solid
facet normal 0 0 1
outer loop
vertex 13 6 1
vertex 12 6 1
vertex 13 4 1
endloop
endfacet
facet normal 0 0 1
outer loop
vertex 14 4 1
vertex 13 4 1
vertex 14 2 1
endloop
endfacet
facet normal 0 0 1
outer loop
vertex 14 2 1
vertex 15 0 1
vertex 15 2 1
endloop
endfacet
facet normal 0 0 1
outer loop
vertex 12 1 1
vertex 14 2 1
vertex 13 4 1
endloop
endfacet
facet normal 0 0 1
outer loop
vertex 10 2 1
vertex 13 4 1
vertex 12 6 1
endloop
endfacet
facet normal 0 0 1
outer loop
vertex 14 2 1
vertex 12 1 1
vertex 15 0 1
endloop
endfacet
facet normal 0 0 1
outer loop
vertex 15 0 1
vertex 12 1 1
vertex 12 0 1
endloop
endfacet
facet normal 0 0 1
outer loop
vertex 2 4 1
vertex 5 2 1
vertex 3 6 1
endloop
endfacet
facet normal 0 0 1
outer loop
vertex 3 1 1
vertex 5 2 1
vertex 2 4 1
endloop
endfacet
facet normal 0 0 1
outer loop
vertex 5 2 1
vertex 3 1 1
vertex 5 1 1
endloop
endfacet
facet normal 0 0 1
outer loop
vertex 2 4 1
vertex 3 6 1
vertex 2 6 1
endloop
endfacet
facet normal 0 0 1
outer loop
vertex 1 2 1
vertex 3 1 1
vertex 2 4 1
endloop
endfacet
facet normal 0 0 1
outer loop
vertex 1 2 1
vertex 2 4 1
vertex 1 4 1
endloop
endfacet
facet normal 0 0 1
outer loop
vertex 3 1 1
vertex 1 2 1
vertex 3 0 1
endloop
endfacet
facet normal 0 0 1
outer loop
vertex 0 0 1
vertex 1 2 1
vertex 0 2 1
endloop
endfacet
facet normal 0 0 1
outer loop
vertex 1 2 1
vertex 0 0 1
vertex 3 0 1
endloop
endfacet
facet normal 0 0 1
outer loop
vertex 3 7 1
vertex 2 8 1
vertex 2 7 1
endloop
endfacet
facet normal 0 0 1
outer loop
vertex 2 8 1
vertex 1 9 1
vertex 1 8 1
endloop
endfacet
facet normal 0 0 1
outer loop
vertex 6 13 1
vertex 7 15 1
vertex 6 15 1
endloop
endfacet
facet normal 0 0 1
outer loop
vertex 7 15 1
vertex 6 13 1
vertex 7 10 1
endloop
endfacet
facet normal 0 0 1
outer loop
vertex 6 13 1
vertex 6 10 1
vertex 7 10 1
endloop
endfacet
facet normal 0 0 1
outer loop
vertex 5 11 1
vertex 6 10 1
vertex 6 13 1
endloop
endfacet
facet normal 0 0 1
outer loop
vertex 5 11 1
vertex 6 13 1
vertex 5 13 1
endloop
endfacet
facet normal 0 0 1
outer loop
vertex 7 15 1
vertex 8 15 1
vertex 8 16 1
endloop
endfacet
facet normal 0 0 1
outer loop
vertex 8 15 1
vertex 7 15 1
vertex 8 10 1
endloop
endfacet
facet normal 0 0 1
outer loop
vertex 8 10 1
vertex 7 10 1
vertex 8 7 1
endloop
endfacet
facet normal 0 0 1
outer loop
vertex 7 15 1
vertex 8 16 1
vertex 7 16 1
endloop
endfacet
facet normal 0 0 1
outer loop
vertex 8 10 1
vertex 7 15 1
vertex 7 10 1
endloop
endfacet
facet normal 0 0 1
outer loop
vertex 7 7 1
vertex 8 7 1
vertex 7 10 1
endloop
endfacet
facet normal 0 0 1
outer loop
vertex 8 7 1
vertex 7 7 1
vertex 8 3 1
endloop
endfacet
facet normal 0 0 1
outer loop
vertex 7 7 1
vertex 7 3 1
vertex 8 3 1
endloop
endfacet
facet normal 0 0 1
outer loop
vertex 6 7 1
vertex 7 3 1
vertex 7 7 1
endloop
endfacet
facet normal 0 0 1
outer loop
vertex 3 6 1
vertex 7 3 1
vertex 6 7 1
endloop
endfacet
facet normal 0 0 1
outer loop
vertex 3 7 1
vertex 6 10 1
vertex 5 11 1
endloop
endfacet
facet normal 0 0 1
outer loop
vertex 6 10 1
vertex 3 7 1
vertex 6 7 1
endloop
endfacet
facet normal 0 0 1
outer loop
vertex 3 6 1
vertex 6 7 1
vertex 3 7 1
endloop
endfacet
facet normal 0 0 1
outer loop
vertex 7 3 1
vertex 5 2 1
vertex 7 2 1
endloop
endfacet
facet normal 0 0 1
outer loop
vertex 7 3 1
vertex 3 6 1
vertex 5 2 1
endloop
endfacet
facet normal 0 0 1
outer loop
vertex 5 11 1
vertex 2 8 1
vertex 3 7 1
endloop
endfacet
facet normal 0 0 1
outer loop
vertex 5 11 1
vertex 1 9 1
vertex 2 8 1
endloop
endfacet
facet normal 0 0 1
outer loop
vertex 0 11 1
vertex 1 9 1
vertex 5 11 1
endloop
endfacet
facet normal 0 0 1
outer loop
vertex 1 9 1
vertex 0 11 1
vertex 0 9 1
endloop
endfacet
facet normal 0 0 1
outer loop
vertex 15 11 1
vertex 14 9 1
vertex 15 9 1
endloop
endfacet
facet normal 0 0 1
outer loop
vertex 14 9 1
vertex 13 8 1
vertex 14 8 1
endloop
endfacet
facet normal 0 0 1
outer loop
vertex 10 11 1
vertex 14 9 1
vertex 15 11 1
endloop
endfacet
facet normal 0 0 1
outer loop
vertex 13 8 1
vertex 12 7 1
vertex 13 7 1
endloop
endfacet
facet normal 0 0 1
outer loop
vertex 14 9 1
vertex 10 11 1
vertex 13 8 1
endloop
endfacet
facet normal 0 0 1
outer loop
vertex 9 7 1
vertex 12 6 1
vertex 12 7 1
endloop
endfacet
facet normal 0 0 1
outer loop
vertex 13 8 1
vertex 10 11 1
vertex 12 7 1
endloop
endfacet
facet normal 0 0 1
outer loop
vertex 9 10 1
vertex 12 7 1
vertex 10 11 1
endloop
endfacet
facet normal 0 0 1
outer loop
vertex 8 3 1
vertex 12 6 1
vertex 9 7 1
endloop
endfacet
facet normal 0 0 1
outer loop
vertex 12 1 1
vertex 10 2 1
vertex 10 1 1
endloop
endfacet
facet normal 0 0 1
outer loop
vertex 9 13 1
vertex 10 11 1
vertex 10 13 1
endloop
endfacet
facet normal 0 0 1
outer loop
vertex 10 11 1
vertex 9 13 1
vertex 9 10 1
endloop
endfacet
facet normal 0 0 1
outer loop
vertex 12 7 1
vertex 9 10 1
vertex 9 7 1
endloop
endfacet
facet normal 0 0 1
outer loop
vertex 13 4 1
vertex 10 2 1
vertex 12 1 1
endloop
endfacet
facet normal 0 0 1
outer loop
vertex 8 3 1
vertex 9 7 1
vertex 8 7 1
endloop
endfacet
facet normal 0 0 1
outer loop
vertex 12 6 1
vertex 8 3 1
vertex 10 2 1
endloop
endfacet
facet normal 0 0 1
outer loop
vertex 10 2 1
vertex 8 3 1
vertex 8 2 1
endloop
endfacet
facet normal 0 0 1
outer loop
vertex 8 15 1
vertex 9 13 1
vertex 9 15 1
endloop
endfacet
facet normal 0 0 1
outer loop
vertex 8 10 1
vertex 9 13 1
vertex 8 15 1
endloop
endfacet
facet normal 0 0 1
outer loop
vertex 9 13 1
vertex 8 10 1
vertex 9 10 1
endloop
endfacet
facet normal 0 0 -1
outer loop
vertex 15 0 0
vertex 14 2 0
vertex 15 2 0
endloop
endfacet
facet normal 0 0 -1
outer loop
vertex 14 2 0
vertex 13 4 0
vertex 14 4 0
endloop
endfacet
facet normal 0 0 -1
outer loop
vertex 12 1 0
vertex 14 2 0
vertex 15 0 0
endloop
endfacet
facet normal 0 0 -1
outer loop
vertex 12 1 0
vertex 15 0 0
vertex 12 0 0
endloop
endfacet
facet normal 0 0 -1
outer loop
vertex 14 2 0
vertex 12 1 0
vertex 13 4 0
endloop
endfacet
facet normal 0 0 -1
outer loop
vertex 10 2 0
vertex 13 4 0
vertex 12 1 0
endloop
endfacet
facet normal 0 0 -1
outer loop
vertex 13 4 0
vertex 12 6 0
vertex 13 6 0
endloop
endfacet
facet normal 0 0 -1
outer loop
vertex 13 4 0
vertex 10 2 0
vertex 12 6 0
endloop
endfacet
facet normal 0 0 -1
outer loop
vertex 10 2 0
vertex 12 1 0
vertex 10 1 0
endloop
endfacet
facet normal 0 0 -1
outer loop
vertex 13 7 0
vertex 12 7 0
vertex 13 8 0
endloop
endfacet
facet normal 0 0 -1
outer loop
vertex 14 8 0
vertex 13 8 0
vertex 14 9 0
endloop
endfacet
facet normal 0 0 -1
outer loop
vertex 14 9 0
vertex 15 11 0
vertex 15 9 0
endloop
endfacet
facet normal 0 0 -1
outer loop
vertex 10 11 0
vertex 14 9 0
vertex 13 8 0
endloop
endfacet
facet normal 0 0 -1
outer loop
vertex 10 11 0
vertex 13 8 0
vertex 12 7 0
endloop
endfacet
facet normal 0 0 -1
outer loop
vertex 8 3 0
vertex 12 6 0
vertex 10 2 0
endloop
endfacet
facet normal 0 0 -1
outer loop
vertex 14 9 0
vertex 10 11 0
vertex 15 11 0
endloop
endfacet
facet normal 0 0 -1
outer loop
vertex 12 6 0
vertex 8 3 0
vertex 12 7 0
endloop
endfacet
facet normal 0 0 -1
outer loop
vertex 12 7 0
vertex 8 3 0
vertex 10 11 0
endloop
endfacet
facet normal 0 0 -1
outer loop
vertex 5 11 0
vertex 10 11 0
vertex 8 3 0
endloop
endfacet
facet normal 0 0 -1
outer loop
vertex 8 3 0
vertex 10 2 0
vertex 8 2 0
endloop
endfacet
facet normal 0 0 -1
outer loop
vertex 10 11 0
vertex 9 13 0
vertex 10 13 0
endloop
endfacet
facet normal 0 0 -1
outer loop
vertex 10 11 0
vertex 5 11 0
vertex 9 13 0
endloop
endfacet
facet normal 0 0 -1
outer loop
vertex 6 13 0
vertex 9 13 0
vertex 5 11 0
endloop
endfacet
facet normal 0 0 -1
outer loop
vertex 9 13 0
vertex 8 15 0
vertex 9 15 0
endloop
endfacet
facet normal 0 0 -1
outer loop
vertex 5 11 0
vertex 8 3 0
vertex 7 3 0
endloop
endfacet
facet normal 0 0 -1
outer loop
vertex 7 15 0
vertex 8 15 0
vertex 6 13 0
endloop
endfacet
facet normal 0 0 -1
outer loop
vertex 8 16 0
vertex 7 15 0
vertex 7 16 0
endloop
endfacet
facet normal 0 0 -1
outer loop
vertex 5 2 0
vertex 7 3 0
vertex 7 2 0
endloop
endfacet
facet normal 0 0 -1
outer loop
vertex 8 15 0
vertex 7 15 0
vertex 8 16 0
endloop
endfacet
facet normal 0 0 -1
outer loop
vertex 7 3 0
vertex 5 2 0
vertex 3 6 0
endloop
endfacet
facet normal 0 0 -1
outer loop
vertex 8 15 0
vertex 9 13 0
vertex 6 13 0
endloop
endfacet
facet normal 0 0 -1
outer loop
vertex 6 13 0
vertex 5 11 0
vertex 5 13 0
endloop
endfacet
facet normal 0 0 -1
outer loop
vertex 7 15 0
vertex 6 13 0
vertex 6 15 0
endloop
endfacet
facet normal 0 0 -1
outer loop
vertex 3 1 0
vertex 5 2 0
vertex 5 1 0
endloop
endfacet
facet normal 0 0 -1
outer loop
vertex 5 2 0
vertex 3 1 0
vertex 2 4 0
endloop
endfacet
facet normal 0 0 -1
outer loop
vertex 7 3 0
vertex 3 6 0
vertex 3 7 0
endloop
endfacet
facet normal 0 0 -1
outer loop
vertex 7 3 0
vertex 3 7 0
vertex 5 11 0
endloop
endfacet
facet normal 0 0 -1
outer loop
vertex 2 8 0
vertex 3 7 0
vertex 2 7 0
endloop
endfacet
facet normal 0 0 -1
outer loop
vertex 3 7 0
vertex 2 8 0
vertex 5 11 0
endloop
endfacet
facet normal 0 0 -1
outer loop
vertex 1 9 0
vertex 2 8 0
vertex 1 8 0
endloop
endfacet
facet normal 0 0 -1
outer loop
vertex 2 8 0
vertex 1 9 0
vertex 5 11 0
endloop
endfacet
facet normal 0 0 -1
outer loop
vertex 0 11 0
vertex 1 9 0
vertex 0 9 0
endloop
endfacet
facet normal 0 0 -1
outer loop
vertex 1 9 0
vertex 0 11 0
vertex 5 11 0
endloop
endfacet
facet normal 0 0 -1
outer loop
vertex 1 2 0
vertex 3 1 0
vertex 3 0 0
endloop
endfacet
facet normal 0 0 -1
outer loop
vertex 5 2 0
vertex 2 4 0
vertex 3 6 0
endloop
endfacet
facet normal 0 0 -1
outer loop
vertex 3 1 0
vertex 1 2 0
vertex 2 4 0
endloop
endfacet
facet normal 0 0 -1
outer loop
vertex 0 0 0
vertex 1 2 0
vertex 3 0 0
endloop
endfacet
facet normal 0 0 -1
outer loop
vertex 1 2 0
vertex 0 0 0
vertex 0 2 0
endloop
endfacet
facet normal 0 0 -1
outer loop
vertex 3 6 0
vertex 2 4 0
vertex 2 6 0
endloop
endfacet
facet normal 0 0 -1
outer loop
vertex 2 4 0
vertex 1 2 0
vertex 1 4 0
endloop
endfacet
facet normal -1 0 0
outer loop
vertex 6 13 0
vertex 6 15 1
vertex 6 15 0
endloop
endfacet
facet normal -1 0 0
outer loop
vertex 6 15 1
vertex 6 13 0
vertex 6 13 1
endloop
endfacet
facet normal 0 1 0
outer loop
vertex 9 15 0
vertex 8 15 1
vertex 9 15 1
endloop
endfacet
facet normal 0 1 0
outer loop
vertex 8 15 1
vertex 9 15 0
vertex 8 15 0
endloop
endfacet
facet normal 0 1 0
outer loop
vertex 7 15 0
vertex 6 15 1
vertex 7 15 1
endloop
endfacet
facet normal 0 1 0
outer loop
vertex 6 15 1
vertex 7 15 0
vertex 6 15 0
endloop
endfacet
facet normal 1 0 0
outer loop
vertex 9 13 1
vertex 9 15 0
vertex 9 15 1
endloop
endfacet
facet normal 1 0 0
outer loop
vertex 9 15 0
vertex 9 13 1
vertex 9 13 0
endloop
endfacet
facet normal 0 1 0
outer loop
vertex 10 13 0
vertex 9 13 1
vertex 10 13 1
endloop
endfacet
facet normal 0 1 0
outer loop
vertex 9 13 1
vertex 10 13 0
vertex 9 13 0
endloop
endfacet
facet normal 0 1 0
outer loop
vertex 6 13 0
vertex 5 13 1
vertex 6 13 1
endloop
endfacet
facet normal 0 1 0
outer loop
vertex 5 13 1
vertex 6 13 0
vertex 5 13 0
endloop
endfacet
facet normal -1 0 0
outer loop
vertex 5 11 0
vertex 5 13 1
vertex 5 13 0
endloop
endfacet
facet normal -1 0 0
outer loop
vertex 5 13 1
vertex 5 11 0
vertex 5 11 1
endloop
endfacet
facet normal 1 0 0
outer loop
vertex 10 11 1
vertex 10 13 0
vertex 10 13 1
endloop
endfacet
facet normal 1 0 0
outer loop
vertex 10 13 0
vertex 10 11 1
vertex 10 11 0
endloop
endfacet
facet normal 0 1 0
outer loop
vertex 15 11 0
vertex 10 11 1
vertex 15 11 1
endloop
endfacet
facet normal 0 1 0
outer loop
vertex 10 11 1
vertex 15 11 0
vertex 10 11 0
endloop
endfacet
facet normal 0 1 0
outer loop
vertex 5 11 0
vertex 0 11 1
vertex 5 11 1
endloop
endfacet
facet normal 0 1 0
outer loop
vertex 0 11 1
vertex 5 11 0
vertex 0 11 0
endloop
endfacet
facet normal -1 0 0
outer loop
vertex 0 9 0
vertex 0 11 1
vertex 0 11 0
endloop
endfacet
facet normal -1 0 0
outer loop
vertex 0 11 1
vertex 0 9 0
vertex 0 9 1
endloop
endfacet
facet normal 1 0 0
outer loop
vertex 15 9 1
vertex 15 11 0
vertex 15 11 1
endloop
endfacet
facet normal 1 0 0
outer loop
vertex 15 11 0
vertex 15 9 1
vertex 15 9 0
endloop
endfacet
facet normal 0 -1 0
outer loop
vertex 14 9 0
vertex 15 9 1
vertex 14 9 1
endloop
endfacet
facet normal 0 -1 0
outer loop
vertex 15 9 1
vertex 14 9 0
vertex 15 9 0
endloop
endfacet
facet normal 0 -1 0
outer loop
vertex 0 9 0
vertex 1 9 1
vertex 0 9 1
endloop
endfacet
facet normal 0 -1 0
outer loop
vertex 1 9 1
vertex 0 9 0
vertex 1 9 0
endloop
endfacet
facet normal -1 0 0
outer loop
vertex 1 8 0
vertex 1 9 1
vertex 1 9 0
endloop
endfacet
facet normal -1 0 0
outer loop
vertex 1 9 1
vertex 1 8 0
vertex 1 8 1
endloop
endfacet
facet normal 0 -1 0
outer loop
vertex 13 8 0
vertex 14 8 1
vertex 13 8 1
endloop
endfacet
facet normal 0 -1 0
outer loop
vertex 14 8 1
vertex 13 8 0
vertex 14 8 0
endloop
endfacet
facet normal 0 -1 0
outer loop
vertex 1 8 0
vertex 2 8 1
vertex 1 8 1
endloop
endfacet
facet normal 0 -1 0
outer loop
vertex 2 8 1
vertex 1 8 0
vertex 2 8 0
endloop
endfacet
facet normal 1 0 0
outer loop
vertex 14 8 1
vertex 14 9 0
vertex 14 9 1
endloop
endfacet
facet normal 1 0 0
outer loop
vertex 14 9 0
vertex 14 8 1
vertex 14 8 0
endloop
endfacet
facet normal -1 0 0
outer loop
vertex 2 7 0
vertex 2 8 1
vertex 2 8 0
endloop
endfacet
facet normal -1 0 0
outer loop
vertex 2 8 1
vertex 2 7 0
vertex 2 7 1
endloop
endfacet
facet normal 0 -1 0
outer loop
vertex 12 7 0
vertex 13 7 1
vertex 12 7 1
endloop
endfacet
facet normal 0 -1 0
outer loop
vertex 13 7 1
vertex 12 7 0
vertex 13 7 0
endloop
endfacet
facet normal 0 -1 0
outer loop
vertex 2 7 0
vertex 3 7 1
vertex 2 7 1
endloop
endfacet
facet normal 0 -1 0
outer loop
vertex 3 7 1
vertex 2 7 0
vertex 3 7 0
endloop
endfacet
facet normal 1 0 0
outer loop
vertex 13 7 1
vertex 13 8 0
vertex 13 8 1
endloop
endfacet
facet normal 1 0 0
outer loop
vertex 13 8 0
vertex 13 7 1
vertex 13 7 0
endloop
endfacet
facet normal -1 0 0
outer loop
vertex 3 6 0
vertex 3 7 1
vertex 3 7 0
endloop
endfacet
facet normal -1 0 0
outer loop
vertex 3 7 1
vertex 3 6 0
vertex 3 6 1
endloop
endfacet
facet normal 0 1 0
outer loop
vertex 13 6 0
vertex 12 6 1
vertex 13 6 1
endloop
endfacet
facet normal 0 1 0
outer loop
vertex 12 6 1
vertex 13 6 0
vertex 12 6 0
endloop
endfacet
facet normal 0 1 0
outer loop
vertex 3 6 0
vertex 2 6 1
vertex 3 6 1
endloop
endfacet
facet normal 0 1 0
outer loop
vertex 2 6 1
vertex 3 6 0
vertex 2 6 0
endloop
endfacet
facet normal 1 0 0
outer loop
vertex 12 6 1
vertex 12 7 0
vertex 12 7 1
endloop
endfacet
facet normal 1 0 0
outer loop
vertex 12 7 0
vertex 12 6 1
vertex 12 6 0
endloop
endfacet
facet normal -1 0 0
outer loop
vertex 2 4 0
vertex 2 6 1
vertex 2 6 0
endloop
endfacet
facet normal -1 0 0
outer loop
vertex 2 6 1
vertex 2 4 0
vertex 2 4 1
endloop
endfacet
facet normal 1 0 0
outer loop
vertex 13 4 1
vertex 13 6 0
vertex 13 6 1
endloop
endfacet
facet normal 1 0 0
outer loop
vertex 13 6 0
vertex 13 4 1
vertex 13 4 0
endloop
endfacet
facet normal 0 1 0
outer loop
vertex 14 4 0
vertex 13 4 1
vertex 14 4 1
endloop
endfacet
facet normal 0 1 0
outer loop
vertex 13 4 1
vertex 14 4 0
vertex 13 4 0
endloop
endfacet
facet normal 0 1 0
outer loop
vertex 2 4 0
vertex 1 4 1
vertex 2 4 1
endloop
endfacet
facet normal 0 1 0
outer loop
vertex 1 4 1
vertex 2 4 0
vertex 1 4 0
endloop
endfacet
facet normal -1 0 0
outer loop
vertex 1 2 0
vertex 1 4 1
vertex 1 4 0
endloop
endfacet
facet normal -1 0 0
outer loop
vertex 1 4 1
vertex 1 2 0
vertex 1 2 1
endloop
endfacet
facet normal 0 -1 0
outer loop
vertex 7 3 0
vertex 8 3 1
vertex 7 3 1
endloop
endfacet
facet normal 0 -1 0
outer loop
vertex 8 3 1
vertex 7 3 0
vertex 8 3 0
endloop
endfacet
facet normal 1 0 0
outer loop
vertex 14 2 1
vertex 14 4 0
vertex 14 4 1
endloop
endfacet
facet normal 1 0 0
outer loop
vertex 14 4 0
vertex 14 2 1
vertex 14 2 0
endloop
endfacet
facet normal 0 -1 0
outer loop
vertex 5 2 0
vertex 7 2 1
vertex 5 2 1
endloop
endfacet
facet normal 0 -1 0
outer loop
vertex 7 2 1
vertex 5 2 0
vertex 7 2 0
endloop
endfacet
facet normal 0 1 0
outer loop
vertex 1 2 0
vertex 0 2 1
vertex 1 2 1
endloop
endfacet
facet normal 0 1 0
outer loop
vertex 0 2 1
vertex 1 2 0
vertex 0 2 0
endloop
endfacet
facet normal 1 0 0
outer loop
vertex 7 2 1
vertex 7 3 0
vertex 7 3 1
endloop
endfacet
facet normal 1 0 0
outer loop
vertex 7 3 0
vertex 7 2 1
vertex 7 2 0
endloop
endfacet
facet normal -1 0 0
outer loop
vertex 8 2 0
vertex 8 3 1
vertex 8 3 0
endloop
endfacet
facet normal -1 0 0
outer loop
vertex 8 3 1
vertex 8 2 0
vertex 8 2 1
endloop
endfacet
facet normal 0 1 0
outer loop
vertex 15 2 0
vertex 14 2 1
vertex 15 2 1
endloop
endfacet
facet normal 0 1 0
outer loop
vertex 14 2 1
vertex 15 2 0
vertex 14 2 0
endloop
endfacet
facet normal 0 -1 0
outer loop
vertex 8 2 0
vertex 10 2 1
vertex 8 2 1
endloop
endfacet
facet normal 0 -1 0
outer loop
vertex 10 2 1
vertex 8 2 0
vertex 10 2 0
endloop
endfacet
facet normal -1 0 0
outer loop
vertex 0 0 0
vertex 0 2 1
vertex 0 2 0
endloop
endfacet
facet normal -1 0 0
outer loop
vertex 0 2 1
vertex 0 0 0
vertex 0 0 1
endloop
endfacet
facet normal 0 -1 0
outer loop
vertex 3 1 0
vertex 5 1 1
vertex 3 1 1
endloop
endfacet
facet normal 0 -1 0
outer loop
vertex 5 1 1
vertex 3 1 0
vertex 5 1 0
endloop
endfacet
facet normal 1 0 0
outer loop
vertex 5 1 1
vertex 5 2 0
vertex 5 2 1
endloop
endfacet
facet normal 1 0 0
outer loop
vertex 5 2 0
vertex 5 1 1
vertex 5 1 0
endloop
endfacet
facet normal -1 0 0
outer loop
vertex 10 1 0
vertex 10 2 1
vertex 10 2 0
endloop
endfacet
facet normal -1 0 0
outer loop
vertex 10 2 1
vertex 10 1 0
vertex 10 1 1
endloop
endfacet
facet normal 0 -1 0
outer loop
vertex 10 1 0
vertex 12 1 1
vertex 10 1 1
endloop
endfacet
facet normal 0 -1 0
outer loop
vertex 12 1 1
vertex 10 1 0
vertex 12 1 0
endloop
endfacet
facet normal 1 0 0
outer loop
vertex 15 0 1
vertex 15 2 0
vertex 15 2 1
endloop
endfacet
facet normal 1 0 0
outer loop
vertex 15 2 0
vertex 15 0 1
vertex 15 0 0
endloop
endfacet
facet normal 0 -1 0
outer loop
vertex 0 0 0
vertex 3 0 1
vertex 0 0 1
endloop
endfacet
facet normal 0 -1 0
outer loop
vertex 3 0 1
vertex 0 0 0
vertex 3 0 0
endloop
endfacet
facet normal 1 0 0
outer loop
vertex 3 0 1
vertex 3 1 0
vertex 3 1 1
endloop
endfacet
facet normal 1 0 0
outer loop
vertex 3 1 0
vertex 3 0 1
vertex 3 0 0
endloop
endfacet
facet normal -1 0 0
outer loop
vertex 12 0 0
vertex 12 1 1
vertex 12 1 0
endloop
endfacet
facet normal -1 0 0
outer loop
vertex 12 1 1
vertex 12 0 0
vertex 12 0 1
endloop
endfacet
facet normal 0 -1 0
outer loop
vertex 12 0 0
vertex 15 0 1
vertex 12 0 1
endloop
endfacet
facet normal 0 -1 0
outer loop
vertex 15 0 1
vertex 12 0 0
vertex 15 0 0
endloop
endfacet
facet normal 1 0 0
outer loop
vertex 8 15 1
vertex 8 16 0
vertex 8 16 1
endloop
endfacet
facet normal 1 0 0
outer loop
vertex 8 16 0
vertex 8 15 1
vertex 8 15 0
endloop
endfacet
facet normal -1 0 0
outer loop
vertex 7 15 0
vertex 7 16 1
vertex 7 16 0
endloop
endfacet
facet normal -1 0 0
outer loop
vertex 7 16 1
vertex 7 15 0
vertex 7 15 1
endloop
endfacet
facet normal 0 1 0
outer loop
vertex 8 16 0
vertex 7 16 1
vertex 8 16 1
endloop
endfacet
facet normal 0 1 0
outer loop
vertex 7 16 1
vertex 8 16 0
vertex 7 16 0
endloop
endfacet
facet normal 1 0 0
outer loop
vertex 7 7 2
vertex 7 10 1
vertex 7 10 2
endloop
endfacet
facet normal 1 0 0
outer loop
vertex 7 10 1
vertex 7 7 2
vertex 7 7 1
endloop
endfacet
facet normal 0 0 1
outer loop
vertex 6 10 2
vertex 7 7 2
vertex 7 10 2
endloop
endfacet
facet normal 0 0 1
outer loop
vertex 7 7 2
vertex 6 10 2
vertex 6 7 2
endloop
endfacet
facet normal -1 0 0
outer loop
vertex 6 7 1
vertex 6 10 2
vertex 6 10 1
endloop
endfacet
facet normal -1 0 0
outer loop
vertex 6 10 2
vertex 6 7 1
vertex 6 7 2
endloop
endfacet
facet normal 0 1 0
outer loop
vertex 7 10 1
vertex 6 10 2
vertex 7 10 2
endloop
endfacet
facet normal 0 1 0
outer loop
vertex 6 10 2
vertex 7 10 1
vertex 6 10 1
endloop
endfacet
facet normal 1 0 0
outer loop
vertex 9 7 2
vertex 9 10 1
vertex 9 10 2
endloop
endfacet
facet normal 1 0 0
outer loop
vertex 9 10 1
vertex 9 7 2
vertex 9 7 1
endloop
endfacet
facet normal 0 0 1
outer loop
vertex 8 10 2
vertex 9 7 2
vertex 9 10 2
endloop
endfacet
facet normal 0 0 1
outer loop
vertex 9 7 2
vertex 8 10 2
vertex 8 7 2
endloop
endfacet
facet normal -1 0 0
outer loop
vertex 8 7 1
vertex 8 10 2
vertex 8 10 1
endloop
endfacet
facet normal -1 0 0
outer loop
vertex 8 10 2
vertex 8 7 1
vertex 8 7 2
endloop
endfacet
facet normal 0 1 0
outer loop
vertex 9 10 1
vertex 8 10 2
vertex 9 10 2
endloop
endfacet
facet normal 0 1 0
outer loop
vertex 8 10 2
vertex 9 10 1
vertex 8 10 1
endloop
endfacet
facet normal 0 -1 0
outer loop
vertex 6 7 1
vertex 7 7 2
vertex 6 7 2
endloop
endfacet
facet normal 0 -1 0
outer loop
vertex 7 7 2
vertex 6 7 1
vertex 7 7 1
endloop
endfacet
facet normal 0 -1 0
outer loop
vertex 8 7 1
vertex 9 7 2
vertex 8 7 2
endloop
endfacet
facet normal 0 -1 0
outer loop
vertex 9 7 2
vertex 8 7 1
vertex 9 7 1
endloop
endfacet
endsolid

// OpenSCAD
/*
 * 3D Pixel Art - Starman 4
 * Copyright (c) 2019 Anar Software LLC. < http://anars.com >
 *
 * This program is free software: you can redistribute it and/or modify it under
 * the terms of the GNU General Public License as published by the Free Software
 * Foundation, either version 3 of the License, or (at your option) any later
 * version.
 *
 * This program is distributed in the hope that it will be useful, but WITHOUT
 * ANY WARRANTY; without even the implied warranty of MERCHANTABILITY or FITNESS
 * FOR A PARTICULAR PURPOSE. See the GNU General Public License for more details.
 *
 * You should have received a copy of the GNU General Public License along with
 * this program. If not, see < http://www.gnu.org/licenses/ >
 *
 */

/* [Global] */

/* [Pixel Settings] */

// Pixel Length (X)
pixel_length = 1;

// Pixel Width (Y)
pixel_width = 1;

// Pixel Height (Z)
pixel_height = 1;

/* [Hidden] */

data=[[
     "       X",
     "      XXX",
     "      XXX",
     "     XXXXX",
     "     XXXXX",
     "XXXXXXXXXXXXXXX",
     "XXXXXXXXXXXXXXX",
     " XXXXXXXXXXXXX",
     "  XXXXXXXXXXX",
     "   XXXXXXXXX",
     "  XXXXXXXXXXX",
     "  XXXXXXXXXXX",
     " XXXXXXXXXXXXX",
     " XXXXXX XXXXXX",
     "XXXXX     XXXXX",
     "XXX         XXX"
     ],[
     "      X X",
     "      X X",
     "      X X",
     "",
     "",
     "",
     "",
     "",
     "",
     ""]];

for (z = [0 : len(data) - 1])
    for (y = [0 : len(data[z]) - 1])
        if (len(data[z][y]) > 0)
            for (x = [0 : len(data[z][y]) - 1])
                if (data[z][y][x] == "X")
                    translate([x * pixel_length, (len(data[z]) - 1 - y) * pixel_width, z * pixel_height])
                        cube([pixel_length, pixel_width, pixel_height]);
